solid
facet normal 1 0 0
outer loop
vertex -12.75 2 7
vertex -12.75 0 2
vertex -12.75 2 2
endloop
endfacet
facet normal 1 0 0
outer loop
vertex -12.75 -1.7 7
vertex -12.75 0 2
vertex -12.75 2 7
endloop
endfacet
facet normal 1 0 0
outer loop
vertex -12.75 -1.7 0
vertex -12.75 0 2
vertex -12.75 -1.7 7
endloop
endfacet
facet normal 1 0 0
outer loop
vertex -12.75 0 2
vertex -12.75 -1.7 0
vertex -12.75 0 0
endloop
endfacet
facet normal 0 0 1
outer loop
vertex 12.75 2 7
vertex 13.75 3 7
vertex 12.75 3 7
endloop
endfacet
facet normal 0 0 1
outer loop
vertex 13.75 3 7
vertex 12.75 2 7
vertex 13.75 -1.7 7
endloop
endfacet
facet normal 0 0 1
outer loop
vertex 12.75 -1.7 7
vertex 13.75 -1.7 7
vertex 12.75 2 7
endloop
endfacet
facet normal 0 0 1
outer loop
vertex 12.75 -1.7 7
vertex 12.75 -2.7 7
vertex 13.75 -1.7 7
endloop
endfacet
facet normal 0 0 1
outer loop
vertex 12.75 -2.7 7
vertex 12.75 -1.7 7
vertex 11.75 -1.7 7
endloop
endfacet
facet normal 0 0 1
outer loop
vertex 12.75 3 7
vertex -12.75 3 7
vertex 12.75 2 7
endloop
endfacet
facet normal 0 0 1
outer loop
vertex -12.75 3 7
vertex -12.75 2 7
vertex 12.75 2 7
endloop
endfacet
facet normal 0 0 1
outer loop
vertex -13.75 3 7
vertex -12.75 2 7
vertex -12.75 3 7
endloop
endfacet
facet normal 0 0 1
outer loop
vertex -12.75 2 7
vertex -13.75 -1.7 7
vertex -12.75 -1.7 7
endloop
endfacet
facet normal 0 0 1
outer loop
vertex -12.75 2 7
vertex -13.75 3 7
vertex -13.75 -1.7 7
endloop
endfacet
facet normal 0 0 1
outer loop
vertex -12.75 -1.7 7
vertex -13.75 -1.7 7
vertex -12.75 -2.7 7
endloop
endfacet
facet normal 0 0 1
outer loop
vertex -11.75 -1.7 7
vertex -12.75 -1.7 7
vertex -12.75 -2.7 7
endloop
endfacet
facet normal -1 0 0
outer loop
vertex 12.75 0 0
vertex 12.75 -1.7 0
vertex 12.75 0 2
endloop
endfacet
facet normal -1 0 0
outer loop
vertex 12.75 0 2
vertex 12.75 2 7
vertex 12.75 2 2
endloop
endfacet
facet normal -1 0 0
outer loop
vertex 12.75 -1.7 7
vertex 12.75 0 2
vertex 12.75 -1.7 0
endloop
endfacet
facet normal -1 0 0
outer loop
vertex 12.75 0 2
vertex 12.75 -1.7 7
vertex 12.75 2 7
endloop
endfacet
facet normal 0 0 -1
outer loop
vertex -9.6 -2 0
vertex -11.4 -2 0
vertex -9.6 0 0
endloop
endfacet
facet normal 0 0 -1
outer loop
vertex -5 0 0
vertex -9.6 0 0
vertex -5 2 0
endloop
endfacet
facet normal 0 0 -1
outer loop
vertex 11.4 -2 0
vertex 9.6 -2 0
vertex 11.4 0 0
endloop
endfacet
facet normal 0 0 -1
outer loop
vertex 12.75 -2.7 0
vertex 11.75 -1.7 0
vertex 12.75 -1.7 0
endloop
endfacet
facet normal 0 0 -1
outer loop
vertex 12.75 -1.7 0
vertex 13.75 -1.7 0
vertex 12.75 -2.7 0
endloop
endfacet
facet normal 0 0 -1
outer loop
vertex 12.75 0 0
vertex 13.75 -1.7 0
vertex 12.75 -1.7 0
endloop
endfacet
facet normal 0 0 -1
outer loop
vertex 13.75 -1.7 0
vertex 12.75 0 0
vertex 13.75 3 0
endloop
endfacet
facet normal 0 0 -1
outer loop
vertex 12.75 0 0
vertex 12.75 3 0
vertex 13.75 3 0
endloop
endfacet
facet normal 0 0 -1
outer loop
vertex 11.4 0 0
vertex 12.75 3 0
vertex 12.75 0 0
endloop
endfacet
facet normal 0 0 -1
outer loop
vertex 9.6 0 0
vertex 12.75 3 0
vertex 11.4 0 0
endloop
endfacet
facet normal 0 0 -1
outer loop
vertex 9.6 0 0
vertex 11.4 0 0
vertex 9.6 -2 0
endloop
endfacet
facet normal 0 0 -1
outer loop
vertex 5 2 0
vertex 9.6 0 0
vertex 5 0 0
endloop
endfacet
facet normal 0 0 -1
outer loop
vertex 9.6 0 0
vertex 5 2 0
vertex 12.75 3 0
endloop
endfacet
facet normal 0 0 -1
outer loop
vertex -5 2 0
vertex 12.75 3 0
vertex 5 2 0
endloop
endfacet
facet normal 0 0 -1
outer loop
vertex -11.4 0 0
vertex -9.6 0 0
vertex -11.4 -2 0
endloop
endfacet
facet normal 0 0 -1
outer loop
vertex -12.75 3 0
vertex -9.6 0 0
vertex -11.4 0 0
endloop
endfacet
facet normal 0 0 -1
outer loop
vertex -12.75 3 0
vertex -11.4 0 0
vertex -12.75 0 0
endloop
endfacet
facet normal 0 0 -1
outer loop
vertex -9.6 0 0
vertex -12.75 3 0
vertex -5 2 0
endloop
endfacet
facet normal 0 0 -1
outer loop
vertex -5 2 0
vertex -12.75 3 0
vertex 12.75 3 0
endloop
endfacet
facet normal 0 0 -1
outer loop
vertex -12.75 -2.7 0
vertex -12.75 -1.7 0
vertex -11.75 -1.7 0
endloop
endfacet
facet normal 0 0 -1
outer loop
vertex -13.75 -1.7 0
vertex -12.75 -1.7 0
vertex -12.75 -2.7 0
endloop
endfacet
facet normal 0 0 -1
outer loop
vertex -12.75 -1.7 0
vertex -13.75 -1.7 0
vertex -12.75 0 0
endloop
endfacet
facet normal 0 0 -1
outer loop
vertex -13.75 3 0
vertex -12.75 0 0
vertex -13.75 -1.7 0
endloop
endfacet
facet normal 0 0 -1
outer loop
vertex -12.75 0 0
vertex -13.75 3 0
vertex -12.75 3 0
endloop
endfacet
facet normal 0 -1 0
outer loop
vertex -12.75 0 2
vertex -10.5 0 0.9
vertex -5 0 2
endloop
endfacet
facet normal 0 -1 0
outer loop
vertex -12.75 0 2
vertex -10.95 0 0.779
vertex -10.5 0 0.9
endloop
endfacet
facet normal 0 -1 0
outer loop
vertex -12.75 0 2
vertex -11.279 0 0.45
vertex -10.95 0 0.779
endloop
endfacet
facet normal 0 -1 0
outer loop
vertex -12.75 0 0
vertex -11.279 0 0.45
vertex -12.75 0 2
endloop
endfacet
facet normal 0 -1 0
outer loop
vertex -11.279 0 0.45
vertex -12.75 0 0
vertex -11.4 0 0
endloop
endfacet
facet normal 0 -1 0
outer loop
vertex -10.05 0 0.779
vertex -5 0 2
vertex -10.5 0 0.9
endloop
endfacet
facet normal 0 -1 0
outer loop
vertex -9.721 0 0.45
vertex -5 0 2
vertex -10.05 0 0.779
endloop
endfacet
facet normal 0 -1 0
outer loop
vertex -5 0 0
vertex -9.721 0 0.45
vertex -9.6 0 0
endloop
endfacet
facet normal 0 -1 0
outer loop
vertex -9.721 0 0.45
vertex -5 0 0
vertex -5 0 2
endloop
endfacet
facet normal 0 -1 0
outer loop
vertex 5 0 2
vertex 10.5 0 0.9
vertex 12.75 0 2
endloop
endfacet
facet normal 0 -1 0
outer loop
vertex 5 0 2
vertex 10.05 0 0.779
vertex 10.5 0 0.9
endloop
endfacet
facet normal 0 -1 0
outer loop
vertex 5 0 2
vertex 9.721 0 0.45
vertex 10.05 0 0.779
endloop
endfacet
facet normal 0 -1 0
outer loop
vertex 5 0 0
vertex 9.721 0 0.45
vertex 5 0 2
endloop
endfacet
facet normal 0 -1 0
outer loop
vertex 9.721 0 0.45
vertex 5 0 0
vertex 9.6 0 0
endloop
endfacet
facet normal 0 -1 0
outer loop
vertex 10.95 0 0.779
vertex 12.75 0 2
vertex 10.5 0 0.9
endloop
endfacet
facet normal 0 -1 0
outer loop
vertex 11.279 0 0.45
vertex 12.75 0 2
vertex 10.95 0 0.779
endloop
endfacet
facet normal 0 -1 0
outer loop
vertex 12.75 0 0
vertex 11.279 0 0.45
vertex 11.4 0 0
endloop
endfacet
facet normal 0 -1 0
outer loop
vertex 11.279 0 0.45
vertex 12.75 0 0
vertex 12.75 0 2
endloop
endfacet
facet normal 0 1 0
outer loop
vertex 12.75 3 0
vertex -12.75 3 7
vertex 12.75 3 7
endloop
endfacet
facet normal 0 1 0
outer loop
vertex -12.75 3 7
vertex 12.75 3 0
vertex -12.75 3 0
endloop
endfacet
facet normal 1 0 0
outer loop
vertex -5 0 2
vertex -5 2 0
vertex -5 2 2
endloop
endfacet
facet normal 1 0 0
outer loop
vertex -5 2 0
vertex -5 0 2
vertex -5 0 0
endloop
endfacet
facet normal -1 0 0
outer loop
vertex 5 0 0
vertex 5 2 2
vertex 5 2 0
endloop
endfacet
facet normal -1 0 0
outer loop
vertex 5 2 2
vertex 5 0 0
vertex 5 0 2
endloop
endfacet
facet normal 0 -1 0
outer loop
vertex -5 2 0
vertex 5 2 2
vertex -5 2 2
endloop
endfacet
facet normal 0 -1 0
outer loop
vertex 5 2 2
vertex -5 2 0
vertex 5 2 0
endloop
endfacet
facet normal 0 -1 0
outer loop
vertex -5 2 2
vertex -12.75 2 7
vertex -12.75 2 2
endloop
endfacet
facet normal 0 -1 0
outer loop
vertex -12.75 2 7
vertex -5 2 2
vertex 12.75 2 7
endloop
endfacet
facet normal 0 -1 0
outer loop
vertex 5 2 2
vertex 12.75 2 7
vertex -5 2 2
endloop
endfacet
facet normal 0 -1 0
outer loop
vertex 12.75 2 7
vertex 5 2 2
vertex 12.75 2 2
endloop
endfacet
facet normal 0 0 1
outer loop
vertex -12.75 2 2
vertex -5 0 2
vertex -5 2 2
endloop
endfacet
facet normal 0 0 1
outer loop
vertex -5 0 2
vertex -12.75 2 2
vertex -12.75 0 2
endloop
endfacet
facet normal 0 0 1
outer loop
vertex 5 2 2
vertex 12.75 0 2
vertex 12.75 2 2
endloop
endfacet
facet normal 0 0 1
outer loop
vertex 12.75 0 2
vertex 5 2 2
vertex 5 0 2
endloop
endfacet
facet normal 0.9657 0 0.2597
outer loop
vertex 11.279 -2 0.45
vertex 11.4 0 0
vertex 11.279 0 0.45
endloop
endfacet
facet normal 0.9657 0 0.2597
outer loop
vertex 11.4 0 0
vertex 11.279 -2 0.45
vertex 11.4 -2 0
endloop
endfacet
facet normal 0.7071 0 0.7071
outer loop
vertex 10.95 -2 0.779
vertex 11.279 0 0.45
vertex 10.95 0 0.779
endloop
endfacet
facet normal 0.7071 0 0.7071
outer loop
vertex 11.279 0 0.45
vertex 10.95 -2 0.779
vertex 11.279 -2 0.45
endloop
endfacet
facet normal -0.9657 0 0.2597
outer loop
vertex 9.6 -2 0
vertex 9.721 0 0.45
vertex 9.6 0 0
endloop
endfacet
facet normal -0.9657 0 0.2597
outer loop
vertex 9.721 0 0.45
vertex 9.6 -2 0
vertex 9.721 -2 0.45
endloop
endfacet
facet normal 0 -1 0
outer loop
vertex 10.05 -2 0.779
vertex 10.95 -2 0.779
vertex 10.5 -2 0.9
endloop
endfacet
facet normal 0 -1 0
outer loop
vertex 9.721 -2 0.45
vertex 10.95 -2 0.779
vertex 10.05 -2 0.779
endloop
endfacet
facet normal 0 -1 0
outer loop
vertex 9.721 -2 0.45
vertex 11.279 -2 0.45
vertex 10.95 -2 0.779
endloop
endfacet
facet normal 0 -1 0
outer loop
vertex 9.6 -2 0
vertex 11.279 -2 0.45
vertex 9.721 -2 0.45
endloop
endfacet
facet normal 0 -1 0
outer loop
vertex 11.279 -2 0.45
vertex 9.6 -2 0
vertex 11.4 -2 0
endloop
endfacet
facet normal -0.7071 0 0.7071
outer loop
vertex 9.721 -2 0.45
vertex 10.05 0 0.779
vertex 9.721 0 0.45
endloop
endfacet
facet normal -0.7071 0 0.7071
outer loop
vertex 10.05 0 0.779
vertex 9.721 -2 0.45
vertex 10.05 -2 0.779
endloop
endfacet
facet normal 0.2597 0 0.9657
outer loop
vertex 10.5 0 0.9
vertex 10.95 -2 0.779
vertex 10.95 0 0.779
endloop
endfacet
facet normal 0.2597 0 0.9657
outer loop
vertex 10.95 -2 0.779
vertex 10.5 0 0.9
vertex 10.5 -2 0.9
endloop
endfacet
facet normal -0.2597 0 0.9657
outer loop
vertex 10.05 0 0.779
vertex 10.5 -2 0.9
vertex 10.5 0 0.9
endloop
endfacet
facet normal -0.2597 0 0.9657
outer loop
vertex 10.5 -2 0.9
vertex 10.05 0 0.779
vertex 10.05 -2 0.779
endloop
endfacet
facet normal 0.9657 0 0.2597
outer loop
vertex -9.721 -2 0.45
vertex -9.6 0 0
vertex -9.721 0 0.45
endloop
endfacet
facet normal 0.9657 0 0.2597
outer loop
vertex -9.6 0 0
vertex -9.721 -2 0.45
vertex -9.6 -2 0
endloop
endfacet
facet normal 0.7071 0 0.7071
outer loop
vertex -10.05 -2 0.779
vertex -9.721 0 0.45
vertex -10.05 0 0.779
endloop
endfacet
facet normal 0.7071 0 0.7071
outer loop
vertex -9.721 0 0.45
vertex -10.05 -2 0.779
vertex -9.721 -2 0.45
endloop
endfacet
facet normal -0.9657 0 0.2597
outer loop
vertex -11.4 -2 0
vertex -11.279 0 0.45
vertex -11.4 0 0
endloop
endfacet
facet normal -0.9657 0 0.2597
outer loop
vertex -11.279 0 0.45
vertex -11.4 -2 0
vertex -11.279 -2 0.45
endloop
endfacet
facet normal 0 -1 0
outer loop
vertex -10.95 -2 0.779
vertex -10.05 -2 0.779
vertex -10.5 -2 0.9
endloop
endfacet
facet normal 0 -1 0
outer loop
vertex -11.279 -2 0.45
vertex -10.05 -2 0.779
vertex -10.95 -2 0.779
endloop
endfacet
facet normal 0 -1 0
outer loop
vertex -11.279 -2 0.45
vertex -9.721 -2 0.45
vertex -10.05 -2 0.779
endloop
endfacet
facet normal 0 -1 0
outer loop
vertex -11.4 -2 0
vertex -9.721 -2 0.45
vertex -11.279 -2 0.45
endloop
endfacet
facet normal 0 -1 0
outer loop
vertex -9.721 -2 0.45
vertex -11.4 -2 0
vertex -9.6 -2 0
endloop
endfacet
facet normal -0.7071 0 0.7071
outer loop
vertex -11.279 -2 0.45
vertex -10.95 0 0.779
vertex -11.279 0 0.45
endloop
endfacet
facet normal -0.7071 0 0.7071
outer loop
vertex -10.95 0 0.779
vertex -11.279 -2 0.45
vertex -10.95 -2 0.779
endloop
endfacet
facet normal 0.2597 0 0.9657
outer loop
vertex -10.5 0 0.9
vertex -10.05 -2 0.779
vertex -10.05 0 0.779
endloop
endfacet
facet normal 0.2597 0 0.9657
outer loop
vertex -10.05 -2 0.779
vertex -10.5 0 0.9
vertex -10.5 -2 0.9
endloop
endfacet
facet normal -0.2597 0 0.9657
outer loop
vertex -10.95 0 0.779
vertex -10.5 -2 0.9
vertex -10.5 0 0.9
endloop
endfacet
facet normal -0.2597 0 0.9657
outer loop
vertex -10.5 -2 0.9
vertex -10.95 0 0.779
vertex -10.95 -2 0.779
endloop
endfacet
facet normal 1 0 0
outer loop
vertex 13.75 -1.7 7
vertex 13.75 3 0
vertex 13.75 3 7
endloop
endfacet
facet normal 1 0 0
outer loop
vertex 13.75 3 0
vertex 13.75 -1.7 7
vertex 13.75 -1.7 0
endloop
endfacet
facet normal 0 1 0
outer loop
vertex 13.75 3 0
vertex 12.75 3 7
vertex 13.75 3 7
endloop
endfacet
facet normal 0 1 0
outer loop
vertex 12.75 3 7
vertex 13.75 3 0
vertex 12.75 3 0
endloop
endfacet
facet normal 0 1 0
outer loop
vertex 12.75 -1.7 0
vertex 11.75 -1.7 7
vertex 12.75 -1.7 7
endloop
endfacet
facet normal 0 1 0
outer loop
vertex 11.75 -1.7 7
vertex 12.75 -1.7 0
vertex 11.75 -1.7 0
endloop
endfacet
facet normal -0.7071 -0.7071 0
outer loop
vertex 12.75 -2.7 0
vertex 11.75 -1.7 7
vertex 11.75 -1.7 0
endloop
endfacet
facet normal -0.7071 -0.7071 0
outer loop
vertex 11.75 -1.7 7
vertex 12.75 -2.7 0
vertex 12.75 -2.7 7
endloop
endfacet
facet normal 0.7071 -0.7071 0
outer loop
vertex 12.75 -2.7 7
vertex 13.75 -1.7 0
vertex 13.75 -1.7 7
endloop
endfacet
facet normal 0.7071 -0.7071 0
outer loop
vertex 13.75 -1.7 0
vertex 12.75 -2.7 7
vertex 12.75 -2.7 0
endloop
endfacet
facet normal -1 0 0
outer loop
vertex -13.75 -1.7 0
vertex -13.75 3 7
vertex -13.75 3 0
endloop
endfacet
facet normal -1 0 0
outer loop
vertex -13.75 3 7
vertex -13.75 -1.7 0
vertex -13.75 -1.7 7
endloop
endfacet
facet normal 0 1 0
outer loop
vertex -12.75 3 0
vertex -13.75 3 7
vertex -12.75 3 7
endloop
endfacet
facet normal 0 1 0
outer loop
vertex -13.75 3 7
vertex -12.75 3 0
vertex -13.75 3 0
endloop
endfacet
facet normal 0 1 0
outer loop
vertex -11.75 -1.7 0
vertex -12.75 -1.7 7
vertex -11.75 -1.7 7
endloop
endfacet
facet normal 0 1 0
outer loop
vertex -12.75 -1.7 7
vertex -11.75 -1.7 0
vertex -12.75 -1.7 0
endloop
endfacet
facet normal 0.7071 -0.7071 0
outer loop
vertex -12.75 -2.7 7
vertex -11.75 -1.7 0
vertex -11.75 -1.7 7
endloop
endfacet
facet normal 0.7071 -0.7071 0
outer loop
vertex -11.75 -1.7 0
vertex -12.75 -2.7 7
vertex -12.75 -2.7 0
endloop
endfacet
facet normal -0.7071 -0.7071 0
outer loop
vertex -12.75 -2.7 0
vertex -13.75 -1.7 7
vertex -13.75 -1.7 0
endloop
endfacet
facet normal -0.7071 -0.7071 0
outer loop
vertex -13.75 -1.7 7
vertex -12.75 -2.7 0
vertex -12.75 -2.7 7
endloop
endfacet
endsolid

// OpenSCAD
$fa=6;
$fs=.5;

module hook(){
	translate([12.75,-1.7,0])linear_extrude(7){
	square([1,3+1.7]);
	difference(){
	rotate(45)square([sqrt(2),sqrt(2)],center=true);
		translate([-1,0])square();
	}
}
}

//square([25.5,1.8]);
intersection(){
union(){
difference(){
	translate([-12.75,0,0])cube([25.5,3,7]);
	translate([-5,0,0])cube([10,2,7]);
	translate([-15,0,2])cube([30,2,7]);
}
translate([10.5,0,0])rotate([90,0,0])cylinder(d=1.8,h=2);
translate([-10.5,0,0])rotate([90,0,0])cylinder(d=1.8,h=2);
hook();
scale([-1,1,1])hook();
}
translate([-25,-15,0])cube([50,30,30]);
}
